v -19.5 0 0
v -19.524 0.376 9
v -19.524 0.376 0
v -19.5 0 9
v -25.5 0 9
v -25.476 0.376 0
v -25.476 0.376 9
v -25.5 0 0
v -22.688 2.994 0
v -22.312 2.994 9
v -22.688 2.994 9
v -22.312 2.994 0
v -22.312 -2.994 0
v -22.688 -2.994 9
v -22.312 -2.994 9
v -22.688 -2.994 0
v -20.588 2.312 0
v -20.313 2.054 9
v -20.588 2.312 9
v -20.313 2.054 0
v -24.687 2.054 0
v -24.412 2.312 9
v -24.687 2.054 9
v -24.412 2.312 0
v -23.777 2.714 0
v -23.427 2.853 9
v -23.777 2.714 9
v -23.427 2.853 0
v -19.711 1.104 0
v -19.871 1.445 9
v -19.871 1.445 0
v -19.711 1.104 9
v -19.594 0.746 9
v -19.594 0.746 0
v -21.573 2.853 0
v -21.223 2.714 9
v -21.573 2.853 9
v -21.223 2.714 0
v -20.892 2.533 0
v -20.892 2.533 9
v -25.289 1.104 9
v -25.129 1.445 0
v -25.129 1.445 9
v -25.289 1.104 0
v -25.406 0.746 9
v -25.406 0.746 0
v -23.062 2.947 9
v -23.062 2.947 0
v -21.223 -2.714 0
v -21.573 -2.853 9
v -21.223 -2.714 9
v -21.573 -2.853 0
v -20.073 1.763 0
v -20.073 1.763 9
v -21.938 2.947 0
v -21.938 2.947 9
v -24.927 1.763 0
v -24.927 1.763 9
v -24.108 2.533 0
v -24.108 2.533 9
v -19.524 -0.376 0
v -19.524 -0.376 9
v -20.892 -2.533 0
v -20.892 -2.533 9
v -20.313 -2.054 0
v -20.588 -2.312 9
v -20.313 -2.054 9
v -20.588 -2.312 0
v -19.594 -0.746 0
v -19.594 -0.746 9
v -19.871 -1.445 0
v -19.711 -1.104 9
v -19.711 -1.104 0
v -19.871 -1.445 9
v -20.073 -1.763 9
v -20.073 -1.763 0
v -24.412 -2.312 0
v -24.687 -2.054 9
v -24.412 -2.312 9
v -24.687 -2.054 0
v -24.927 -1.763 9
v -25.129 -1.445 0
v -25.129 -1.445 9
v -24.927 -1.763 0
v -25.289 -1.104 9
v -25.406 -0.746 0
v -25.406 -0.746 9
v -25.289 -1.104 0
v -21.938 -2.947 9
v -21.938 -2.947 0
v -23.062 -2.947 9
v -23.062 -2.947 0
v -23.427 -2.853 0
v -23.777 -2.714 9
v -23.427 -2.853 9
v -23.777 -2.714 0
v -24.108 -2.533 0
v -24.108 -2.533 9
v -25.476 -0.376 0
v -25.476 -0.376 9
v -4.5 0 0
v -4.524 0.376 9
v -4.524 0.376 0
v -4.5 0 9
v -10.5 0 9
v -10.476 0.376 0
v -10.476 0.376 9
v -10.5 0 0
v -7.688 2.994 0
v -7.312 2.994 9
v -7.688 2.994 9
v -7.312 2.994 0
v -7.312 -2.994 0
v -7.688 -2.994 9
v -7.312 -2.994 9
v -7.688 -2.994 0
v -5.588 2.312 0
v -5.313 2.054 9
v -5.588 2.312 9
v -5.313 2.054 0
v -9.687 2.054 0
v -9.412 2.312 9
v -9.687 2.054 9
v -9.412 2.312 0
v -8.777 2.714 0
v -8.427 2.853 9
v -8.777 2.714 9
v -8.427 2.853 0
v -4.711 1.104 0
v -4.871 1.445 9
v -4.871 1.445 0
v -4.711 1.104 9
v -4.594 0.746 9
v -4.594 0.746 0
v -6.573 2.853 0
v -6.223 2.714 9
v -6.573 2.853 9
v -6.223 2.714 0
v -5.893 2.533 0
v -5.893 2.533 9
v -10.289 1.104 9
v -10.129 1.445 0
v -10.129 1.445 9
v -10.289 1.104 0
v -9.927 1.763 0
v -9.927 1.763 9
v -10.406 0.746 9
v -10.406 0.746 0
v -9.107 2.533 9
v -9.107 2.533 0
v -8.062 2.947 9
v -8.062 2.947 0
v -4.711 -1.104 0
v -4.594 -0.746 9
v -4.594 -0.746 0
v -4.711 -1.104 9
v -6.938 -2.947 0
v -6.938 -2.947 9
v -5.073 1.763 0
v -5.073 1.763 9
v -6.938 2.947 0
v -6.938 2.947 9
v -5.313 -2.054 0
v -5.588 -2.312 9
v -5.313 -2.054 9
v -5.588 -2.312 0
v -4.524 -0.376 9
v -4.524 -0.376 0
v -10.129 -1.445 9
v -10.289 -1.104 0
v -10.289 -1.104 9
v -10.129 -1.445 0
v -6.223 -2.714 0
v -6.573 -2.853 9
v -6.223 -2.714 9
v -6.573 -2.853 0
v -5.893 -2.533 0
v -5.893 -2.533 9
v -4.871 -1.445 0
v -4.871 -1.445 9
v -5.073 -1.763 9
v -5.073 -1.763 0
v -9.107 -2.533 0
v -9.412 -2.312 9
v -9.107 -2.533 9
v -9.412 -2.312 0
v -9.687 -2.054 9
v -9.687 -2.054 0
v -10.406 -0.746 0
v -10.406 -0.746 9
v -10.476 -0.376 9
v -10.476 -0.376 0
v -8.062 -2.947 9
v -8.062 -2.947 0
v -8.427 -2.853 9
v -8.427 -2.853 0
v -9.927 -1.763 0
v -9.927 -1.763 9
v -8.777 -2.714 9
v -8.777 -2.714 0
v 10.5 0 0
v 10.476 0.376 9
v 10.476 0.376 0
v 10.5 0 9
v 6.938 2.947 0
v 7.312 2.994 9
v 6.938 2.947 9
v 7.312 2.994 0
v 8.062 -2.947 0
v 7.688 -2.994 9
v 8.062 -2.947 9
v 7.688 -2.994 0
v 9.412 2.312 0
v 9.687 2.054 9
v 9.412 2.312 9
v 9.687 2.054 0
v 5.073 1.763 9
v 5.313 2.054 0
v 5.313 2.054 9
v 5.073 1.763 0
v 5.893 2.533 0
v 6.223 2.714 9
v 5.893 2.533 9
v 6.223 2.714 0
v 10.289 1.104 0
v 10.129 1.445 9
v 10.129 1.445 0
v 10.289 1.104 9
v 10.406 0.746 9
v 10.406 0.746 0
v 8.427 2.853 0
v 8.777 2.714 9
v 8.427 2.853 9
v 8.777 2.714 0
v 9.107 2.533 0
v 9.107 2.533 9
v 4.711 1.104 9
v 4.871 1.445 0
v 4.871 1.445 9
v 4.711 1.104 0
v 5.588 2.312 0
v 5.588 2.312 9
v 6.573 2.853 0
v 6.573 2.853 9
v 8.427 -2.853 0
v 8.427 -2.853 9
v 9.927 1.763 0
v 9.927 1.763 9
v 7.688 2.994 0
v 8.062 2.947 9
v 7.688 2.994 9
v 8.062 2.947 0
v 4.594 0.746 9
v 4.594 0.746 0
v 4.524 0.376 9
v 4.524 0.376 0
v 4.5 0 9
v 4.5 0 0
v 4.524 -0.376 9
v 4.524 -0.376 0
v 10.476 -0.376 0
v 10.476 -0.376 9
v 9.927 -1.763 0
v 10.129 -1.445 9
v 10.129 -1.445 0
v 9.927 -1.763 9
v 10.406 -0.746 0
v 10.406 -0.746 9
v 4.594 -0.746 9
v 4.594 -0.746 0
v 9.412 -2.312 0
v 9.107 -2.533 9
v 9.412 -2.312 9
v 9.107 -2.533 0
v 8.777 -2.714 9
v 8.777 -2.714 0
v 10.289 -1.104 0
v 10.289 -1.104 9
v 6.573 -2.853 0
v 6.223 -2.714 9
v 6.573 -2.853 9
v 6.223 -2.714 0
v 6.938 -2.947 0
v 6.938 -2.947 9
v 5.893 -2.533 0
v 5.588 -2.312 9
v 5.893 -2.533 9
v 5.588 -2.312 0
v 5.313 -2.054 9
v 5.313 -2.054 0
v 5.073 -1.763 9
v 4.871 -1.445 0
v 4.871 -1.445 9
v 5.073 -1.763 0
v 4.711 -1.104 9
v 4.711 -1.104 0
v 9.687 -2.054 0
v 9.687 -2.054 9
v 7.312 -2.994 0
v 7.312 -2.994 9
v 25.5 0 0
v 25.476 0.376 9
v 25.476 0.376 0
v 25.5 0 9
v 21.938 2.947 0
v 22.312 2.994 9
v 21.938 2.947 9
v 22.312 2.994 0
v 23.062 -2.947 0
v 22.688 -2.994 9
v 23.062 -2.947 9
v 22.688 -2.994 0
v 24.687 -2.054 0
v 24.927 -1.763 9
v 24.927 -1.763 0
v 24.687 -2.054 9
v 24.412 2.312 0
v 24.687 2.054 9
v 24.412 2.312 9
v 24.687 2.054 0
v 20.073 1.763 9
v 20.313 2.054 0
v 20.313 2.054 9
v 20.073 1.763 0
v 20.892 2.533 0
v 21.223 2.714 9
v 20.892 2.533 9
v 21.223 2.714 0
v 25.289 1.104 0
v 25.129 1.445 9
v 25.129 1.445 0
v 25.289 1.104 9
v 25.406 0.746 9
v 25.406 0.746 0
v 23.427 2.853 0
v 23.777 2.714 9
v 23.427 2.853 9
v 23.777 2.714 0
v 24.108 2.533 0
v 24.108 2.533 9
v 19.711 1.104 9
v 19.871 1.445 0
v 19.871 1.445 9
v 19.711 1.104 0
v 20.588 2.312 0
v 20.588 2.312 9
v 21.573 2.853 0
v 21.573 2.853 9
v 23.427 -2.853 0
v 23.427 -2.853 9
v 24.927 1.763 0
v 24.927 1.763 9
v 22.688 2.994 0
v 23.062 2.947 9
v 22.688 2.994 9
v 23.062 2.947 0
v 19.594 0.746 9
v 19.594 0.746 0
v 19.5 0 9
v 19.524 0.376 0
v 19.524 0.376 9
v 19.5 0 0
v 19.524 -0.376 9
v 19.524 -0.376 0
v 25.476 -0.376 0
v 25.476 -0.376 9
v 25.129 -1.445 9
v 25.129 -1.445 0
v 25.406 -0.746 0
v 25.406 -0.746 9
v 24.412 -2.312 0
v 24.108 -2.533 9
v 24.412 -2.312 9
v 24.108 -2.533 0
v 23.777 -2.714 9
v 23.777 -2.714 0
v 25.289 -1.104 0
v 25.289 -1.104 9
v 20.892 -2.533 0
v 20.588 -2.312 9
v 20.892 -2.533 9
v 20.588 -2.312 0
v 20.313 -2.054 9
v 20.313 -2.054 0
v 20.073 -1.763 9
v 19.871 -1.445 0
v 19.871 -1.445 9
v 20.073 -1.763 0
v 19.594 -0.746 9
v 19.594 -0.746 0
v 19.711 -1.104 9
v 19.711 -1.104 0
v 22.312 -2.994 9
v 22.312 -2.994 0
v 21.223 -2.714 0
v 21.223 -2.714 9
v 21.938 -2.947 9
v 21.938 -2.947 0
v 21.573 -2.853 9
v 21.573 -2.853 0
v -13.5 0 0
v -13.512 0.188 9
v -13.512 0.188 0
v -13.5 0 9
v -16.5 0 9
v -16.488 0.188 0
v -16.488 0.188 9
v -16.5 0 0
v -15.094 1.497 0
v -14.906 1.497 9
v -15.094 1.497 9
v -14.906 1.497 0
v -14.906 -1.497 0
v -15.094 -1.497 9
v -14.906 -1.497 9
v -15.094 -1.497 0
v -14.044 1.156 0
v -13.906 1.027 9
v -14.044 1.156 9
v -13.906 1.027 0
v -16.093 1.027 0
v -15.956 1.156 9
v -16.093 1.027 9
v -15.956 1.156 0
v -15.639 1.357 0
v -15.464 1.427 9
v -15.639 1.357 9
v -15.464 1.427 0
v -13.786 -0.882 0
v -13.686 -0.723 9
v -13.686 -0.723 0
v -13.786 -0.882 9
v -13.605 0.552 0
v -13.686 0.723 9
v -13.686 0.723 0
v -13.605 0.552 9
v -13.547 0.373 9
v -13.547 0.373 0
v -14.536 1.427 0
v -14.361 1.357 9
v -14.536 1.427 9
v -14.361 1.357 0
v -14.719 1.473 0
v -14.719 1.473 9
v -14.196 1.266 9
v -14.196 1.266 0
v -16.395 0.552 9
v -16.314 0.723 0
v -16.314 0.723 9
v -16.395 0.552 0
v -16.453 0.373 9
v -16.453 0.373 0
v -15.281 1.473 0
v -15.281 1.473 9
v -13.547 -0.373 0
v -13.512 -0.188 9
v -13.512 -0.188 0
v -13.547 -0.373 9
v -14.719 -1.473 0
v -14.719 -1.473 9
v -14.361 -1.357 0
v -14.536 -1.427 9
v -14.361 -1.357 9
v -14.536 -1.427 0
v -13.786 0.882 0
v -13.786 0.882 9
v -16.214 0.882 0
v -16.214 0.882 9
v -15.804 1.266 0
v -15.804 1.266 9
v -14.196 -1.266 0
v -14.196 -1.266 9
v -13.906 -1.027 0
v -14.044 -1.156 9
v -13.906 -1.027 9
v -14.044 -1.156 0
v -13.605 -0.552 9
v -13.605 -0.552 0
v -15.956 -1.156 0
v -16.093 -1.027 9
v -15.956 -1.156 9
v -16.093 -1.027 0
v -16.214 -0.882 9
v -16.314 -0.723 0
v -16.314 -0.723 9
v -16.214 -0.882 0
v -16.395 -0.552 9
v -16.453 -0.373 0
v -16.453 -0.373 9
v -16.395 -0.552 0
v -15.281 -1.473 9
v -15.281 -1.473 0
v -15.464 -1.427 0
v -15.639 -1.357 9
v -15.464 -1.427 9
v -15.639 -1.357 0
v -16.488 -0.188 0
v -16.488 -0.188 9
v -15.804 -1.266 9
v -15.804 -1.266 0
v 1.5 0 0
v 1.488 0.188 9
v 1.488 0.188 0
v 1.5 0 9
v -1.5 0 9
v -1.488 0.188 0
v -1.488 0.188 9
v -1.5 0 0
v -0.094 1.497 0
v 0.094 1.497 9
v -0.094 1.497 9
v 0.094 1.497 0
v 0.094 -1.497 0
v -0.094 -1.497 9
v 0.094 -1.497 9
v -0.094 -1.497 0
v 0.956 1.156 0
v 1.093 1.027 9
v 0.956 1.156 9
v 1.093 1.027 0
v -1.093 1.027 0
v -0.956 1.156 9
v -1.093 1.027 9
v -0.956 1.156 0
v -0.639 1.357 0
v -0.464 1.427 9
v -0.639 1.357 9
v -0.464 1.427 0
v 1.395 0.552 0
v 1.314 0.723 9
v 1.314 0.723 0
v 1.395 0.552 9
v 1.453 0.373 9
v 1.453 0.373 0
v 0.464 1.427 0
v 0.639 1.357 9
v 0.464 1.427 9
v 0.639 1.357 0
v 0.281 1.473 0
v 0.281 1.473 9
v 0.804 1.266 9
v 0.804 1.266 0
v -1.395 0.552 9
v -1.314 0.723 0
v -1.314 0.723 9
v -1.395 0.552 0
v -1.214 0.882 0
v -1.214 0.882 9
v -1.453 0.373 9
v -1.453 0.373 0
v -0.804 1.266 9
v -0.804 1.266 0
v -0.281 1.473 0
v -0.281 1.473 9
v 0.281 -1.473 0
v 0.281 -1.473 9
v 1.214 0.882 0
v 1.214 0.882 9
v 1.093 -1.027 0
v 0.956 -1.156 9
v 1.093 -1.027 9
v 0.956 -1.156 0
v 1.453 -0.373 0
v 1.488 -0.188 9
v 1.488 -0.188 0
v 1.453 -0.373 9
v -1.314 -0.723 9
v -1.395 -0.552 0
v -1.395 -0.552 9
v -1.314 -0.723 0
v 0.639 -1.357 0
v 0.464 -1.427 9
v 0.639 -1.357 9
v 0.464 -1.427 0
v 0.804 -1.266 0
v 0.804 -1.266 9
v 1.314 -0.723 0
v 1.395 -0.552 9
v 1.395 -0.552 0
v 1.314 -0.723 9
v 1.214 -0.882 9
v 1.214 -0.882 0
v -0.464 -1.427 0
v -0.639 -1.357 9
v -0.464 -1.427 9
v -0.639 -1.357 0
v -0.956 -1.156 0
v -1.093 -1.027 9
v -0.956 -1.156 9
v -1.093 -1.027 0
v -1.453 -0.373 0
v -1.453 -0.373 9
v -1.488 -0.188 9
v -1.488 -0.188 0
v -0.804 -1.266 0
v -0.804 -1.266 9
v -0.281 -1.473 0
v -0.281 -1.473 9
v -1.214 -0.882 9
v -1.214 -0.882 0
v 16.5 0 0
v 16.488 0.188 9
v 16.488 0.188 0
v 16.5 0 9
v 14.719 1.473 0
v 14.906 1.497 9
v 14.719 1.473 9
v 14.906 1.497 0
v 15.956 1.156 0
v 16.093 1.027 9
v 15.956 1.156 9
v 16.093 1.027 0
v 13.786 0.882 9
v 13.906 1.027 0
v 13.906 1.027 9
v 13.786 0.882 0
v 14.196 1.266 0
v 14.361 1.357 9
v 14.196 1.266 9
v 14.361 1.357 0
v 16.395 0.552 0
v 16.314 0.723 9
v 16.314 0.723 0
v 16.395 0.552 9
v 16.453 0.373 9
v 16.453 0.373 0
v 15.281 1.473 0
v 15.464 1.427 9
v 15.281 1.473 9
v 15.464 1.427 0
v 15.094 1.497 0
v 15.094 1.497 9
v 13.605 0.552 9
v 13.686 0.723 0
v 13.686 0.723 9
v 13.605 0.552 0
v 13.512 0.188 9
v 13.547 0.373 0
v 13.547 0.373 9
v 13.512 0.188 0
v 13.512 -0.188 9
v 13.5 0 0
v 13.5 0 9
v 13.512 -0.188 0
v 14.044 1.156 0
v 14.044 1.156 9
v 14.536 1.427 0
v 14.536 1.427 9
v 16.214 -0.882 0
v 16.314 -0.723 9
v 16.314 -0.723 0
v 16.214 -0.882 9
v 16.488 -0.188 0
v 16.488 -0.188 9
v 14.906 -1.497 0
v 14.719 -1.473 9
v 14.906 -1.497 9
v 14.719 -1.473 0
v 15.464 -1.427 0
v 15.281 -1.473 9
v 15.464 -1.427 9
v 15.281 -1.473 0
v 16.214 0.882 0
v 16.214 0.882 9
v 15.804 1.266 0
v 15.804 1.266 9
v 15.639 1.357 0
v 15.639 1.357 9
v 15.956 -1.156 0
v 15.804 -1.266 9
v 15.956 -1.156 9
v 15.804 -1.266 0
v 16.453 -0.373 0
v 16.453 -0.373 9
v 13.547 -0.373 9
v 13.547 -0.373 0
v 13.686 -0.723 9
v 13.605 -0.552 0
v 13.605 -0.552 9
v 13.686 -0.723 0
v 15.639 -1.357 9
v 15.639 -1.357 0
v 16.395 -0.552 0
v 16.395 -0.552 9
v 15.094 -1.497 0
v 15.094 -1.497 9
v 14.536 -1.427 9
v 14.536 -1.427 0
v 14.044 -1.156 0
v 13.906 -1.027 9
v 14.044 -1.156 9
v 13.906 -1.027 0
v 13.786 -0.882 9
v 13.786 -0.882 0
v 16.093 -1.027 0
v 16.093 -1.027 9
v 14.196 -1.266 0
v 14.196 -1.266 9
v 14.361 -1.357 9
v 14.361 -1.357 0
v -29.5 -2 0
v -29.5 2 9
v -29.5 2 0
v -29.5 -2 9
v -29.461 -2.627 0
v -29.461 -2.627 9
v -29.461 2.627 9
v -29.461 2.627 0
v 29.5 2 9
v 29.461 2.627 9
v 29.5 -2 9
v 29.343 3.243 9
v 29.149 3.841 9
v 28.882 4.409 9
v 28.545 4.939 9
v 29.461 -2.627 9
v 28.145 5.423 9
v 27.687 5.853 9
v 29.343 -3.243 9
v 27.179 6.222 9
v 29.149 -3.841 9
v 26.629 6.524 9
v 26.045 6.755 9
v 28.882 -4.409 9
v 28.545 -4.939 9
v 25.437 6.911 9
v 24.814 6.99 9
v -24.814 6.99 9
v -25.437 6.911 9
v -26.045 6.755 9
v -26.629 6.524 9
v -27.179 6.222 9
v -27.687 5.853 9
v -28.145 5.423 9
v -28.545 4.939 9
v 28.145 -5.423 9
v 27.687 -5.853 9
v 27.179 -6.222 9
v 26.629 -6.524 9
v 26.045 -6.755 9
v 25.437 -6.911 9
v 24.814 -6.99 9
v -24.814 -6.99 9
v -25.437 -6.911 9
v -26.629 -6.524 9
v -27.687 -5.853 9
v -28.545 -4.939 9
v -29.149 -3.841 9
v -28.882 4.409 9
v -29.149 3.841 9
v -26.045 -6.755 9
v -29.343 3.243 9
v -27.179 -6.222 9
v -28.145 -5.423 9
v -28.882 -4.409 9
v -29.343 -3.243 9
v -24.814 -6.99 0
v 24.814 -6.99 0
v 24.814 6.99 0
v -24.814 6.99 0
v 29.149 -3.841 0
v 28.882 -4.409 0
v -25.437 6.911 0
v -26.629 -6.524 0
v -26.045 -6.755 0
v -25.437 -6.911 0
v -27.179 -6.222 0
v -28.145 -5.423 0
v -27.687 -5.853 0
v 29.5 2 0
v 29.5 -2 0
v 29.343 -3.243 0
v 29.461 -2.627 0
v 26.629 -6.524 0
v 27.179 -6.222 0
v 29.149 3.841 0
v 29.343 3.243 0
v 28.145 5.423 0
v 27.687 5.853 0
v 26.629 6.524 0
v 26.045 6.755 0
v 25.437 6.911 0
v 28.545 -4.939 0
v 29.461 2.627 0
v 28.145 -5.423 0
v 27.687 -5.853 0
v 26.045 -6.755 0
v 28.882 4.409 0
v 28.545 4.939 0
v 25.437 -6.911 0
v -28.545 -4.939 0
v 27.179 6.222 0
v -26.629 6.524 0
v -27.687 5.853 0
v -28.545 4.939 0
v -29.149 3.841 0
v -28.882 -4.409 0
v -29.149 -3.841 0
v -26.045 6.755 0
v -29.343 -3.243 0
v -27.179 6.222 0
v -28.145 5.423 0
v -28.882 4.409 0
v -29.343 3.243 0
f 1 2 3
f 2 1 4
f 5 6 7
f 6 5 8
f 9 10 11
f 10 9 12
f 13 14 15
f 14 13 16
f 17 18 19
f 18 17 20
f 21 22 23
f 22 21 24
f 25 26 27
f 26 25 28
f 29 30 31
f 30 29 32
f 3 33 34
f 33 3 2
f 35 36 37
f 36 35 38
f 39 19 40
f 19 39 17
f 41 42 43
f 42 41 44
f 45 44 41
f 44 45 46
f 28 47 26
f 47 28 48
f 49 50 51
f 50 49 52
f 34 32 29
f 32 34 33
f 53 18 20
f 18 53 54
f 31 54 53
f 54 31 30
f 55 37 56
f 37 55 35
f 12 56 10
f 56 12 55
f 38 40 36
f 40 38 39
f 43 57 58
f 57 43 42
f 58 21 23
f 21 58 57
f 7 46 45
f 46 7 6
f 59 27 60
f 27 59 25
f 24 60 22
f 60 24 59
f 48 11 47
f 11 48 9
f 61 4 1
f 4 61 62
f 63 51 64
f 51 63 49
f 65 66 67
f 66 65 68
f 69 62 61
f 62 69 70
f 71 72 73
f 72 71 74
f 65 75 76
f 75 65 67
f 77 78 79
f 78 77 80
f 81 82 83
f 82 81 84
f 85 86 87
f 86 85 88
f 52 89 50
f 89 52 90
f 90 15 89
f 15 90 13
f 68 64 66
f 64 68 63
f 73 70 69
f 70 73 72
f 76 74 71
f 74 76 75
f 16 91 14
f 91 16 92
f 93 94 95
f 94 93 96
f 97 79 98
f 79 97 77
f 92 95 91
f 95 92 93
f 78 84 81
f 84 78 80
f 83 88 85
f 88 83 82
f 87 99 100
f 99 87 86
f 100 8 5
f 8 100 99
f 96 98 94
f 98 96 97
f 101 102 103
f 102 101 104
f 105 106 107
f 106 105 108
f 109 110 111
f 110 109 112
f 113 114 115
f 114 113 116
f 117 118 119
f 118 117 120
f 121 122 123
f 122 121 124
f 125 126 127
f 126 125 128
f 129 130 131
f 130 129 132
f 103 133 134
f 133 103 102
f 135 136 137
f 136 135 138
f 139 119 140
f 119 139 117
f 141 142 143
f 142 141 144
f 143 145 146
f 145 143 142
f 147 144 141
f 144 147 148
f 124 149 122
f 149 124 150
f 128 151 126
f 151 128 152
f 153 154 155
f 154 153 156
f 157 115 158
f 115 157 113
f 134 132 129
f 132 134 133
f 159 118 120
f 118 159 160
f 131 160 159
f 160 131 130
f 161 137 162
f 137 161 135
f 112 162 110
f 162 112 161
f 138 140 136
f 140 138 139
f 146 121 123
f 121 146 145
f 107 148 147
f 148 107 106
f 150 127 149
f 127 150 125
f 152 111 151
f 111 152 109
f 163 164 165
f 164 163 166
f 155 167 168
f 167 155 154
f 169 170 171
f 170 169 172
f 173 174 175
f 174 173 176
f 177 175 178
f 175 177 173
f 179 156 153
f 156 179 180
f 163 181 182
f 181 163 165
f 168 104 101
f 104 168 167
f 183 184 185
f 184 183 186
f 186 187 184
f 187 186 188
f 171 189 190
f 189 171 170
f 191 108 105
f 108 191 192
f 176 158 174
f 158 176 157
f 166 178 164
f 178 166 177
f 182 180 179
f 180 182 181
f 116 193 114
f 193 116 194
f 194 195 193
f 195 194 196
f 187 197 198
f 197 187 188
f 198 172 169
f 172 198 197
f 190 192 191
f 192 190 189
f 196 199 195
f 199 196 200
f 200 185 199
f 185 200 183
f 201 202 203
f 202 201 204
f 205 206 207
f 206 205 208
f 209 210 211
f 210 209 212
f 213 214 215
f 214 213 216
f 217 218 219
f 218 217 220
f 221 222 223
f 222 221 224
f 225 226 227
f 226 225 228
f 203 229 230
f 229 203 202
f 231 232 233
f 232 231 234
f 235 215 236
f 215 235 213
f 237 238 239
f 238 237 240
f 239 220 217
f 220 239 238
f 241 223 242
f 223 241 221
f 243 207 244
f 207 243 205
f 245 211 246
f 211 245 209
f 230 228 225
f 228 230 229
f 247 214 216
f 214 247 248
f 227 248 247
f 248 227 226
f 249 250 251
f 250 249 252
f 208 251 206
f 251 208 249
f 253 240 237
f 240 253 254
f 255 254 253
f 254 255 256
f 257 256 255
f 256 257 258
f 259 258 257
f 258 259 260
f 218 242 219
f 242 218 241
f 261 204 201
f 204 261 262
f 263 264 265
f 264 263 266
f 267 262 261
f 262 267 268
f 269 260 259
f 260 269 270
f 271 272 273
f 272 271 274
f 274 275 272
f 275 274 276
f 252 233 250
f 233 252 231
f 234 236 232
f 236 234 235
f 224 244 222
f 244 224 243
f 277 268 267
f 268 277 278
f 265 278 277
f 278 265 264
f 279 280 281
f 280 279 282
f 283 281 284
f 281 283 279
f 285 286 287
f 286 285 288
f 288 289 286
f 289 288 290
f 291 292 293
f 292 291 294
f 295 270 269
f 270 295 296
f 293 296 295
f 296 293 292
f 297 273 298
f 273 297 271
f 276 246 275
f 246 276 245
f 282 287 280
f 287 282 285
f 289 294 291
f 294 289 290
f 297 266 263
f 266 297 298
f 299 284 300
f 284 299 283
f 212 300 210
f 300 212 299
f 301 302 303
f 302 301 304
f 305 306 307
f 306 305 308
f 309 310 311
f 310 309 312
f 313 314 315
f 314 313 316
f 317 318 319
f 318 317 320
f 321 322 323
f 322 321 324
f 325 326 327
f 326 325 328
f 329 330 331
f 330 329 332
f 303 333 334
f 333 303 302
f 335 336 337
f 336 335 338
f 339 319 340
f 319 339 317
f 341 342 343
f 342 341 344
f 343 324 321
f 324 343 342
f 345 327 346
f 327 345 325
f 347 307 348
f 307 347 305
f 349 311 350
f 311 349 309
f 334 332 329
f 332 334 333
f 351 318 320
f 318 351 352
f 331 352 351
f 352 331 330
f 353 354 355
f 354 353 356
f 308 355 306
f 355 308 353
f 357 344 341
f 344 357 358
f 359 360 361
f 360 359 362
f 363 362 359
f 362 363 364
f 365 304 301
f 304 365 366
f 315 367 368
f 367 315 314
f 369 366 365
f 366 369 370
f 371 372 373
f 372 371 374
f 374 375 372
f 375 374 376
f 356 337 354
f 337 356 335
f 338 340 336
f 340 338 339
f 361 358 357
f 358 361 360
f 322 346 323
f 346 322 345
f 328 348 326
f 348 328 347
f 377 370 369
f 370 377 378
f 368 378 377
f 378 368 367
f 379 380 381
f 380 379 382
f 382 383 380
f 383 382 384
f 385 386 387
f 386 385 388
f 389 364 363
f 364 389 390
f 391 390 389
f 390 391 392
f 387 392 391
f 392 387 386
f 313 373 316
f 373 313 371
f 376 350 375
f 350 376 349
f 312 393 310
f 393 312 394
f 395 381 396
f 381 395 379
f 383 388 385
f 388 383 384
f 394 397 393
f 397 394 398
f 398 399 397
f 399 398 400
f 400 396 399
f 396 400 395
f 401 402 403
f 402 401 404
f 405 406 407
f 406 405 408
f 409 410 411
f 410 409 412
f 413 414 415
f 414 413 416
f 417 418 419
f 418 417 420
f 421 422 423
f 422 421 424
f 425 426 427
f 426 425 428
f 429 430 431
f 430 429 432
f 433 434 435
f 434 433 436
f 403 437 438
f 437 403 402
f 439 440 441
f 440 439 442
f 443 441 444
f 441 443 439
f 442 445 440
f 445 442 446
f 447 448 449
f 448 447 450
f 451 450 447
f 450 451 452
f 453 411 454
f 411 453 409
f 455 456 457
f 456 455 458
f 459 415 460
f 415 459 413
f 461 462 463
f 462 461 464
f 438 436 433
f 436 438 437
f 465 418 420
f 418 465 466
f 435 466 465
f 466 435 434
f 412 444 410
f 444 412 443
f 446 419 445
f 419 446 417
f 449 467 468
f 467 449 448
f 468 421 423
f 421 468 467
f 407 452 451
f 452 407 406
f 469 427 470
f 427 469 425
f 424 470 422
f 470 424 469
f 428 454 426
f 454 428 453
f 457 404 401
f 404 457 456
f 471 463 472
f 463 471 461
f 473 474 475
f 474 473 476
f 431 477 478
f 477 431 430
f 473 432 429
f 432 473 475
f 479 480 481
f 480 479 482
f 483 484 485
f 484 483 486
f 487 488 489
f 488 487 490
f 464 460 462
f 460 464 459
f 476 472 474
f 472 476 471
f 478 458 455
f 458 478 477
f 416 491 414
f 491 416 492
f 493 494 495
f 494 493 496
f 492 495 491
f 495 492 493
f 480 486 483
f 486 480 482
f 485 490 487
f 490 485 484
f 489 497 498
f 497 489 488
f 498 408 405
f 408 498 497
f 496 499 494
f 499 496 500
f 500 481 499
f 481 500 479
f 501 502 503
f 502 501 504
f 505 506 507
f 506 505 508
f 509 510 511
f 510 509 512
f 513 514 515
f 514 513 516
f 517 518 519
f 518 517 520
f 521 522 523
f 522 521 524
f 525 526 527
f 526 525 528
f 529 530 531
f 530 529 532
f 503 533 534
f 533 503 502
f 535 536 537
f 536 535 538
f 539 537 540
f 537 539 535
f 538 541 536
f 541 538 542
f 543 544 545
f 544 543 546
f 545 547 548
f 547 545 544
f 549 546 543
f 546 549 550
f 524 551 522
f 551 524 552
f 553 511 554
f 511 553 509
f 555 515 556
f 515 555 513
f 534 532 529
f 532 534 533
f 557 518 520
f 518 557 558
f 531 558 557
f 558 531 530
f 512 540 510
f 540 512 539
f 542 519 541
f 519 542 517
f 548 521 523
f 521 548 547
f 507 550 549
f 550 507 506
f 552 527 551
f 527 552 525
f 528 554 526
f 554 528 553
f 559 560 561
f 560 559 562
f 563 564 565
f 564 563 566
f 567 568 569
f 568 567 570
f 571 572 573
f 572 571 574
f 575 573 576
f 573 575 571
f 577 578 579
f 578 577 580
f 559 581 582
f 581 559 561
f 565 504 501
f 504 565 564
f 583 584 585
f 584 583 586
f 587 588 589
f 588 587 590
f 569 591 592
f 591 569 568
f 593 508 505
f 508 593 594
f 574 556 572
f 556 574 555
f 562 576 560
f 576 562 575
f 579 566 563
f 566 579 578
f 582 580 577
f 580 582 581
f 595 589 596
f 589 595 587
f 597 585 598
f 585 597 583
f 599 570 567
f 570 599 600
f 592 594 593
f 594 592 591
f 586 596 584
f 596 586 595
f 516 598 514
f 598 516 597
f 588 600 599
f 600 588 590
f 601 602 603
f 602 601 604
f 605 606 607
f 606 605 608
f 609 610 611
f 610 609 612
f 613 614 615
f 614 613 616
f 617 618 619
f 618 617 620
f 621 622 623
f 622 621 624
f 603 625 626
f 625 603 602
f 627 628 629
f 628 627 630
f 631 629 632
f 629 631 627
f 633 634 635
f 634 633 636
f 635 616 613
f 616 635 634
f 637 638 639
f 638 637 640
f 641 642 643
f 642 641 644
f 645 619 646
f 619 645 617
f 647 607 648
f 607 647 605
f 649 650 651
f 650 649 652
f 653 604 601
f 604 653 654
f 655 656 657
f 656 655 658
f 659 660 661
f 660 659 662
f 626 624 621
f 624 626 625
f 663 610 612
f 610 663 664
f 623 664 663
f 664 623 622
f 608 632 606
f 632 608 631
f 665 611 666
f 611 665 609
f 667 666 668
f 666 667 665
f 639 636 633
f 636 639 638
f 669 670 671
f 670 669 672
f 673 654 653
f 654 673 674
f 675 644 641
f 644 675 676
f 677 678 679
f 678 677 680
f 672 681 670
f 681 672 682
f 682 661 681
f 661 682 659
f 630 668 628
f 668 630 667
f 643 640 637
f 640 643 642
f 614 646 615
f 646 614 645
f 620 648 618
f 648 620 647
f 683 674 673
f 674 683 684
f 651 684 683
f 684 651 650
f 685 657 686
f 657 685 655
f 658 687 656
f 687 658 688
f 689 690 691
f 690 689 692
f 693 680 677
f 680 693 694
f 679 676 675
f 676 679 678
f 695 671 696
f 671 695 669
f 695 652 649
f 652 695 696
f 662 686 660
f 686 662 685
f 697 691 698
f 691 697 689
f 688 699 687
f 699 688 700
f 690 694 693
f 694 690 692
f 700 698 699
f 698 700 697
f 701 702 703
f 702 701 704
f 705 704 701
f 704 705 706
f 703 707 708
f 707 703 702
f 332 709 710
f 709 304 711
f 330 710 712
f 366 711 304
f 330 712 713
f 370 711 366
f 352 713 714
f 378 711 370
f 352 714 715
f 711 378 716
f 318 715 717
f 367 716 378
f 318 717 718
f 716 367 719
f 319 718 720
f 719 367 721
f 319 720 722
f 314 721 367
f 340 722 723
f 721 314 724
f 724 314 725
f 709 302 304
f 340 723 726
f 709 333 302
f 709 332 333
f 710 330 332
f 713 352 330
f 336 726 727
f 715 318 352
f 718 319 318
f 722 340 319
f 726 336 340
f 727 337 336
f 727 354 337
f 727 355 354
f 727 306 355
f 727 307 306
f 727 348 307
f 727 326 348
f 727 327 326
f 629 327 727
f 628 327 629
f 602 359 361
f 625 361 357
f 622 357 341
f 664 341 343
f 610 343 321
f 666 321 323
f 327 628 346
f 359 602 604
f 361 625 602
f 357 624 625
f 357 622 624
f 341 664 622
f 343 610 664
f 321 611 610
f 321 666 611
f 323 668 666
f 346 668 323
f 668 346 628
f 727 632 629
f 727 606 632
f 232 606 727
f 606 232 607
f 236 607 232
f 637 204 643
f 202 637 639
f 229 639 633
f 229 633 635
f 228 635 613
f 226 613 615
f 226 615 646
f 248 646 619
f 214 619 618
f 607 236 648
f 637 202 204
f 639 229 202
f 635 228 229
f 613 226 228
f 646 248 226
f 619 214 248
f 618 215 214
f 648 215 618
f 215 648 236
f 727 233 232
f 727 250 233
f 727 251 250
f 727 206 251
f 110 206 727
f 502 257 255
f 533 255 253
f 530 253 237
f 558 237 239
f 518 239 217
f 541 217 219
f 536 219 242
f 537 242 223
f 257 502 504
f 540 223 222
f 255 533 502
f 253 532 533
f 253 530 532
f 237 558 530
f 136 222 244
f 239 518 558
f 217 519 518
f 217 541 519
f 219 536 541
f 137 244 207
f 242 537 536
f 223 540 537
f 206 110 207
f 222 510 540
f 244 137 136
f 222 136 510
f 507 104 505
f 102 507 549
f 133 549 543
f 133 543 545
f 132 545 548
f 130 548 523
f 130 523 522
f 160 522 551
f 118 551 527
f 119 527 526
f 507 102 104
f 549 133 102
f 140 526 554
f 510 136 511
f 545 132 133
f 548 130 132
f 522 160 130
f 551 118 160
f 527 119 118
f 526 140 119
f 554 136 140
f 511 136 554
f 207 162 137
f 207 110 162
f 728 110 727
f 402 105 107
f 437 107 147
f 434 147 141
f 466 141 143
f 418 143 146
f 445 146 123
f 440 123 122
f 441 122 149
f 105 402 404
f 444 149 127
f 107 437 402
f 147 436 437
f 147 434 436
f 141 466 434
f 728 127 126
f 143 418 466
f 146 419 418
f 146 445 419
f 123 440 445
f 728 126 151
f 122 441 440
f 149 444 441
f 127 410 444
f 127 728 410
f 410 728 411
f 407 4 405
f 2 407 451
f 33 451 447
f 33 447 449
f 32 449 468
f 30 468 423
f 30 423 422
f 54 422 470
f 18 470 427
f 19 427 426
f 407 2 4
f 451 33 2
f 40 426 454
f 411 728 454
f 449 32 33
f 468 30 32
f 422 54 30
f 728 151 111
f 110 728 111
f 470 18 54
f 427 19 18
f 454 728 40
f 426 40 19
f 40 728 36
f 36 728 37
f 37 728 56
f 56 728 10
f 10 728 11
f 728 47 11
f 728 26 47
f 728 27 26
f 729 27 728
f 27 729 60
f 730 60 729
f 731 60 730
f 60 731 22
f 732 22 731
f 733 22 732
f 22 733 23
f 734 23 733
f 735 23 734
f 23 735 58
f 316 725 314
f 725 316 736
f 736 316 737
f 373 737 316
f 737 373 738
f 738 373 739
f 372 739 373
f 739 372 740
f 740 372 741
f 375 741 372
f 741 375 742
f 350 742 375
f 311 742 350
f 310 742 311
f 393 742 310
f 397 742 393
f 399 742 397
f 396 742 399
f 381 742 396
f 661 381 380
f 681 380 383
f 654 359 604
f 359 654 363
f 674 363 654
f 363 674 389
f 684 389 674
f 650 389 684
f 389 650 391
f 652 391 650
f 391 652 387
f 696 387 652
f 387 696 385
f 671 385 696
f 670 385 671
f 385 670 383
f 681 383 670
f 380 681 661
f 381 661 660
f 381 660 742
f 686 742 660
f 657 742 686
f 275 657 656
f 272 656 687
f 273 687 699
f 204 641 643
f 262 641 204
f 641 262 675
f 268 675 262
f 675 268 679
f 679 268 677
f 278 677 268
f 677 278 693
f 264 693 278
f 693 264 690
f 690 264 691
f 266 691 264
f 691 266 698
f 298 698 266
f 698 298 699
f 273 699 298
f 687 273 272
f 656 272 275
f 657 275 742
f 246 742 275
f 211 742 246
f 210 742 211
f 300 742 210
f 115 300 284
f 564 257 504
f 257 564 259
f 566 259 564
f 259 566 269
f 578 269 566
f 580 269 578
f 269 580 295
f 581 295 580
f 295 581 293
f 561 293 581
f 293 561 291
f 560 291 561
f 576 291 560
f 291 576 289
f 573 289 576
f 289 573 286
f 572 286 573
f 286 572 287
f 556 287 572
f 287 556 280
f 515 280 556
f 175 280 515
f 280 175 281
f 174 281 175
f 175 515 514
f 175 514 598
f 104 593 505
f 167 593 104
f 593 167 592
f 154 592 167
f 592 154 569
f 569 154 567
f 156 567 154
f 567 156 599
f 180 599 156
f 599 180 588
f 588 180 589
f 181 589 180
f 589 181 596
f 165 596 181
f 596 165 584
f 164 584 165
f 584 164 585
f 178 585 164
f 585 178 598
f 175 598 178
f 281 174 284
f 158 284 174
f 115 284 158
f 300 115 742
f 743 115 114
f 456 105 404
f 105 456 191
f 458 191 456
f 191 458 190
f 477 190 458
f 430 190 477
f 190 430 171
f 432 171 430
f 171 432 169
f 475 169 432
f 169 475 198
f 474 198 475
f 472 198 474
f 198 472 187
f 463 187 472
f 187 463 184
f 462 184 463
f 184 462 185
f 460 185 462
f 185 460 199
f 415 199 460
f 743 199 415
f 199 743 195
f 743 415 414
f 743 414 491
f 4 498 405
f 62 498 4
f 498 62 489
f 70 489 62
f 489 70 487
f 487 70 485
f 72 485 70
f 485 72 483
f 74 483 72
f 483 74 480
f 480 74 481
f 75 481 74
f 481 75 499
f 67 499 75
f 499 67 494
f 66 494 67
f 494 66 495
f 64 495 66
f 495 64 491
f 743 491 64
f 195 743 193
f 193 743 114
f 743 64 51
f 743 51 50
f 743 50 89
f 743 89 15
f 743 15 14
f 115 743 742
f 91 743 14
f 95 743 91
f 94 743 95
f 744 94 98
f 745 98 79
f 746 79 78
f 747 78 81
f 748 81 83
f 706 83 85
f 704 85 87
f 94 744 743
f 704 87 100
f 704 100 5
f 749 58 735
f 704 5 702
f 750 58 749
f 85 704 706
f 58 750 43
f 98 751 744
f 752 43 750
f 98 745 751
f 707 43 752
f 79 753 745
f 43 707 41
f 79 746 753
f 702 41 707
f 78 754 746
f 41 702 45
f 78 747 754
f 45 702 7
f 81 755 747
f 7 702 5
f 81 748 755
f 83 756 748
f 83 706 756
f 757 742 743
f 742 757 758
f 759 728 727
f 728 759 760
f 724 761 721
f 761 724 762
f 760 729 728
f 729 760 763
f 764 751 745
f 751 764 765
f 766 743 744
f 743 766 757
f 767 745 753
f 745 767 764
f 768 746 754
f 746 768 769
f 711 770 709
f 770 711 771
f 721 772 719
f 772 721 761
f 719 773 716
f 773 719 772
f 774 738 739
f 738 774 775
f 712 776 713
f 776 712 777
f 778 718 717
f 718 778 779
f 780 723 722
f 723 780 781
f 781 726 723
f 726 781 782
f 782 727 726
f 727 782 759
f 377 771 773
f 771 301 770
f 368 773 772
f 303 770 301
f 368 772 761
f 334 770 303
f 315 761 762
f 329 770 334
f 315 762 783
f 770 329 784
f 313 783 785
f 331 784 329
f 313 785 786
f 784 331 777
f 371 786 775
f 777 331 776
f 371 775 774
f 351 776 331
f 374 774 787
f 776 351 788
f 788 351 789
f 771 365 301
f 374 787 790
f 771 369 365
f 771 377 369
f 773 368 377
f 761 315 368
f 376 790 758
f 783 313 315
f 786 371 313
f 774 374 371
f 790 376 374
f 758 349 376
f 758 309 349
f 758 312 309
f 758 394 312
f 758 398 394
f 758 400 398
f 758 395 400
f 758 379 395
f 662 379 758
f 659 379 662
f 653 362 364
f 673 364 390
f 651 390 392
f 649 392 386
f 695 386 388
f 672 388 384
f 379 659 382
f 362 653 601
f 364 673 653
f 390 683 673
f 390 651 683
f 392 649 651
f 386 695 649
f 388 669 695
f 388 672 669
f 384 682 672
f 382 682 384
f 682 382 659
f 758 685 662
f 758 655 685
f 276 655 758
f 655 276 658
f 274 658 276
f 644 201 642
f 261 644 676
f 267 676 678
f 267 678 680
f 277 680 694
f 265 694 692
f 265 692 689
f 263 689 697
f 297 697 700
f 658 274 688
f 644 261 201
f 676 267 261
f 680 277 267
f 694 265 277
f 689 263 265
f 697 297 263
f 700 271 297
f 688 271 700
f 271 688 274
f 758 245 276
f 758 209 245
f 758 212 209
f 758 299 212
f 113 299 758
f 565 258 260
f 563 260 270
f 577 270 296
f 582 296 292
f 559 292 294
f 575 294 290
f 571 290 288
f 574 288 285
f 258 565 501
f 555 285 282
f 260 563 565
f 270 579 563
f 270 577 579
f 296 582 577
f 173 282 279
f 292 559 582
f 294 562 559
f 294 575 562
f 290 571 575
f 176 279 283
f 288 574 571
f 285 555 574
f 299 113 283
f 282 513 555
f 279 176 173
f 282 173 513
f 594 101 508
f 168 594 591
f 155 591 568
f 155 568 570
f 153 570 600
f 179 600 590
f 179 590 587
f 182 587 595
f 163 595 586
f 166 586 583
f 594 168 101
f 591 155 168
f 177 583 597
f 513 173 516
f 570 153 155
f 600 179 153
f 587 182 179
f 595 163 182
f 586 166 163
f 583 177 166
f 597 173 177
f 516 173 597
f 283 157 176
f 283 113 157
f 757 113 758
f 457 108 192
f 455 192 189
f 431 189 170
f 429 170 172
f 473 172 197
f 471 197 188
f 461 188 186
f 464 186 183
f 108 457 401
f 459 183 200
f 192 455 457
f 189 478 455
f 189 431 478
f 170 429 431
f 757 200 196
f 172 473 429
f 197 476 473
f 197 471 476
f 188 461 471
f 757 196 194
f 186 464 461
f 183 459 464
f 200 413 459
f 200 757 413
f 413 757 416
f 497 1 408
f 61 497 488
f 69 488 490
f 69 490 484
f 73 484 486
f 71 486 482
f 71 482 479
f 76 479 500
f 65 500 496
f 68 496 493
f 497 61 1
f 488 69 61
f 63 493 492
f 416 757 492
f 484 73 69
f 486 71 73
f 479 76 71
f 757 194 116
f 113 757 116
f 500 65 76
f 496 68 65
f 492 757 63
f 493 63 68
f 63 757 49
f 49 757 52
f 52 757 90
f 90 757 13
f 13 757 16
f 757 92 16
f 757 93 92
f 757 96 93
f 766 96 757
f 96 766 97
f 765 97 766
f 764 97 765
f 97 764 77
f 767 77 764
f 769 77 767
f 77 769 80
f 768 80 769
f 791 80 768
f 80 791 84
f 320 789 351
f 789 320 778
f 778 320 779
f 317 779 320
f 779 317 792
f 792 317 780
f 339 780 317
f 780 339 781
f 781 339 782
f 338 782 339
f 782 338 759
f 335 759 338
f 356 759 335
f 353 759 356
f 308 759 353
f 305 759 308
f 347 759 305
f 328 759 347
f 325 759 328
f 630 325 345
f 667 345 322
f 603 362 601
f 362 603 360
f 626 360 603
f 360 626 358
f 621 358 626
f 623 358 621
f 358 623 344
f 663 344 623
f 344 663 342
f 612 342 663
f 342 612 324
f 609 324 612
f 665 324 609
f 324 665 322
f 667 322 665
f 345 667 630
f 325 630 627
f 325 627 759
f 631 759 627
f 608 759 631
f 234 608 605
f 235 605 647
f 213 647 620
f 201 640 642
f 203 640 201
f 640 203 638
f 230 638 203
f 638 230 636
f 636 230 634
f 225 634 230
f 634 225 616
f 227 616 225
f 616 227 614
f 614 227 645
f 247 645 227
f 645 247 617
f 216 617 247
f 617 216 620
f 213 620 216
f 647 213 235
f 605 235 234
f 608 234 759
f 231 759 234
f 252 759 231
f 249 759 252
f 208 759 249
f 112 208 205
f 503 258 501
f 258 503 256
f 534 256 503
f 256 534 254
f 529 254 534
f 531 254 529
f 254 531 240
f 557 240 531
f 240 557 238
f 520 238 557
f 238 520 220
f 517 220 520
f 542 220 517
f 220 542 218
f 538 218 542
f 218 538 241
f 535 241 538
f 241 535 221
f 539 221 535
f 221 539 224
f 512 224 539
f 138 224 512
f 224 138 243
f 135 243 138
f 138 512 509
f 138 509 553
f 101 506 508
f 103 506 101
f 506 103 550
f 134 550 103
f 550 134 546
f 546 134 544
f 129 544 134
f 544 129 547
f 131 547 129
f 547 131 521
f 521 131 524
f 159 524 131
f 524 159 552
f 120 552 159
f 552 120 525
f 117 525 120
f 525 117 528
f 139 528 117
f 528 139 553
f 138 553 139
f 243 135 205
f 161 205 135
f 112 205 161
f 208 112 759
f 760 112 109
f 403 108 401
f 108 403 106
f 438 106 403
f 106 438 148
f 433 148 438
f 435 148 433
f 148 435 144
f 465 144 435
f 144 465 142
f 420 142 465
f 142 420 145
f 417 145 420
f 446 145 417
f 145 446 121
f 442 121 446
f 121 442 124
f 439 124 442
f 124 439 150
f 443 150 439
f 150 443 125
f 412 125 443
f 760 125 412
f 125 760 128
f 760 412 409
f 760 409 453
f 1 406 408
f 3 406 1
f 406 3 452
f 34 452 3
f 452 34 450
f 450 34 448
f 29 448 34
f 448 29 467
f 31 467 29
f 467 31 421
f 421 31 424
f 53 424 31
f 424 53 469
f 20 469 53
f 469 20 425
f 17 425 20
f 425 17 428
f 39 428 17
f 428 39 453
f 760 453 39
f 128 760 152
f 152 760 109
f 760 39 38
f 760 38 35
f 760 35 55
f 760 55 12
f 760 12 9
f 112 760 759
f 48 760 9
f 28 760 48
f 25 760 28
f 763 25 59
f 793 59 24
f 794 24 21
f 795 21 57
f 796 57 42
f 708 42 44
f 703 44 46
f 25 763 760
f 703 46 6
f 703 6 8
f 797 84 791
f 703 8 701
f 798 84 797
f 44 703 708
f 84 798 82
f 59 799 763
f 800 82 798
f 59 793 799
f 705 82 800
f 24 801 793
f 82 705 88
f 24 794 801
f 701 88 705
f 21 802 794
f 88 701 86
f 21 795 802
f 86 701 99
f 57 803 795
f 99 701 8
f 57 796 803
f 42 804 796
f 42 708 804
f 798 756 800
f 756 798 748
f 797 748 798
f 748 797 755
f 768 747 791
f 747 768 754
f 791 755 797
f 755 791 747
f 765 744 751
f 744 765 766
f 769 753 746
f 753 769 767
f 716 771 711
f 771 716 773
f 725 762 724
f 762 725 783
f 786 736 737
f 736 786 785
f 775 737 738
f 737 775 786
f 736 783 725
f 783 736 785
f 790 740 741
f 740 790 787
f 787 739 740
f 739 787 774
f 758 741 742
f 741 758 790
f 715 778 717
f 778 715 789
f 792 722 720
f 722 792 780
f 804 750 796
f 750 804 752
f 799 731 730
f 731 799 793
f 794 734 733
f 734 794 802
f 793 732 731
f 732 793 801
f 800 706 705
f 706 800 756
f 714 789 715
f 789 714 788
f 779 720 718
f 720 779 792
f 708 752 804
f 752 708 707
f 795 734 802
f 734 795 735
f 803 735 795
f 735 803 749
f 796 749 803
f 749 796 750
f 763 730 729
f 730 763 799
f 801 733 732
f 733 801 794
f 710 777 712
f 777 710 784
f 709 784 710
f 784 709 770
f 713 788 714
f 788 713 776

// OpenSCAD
$fn = 50;


difference() {
	union() {
		translate(v = [0, 0, 0]) {
			rotate(a = [0, 0, 0]) {
				hull() {
					translate(v = [-24.5000000000, 2.0000000000, 0]) {
						rotate(a = [0, 0, 0]) {
							translate(v = [0, 0, 0]) {
								rotate(a = [0, 0, 0]) {
									cylinder(h = 9, r = 5);
								}
							}
						}
					}
					translate(v = [24.5000000000, 2.0000000000, 0]) {
						rotate(a = [0, 0, 0]) {
							translate(v = [0, 0, 0]) {
								rotate(a = [0, 0, 0]) {
									cylinder(h = 9, r = 5);
								}
							}
						}
					}
					translate(v = [-24.5000000000, -2.0000000000, 0]) {
						rotate(a = [0, 0, 0]) {
							translate(v = [0, 0, 0]) {
								rotate(a = [0, 0, 0]) {
									cylinder(h = 9, r = 5);
								}
							}
						}
					}
					translate(v = [24.5000000000, -2.0000000000, 0]) {
						rotate(a = [0, 0, 0]) {
							translate(v = [0, 0, 0]) {
								rotate(a = [0, 0, 0]) {
									cylinder(h = 9, r = 5);
								}
							}
						}
					}
				}
			}
		}
	}
	union() {
		translate(v = [-22.5000000000, 0.0000000000, 0]) {
			rotate(a = [0, 0, 0]) {
				translate(v = [0, 0, -50]) {
					rotate(a = [0, 0, 0]) {
						cylinder(h = 100, r = 3.0000000000);
					}
				}
			}
		}
		translate(v = [-7.5000000000, 0.0000000000, 0]) {
			rotate(a = [0, 0, 0]) {
				translate(v = [0, 0, -50]) {
					rotate(a = [0, 0, 0]) {
						cylinder(h = 100, r = 3.0000000000);
					}
				}
			}
		}
		translate(v = [7.5000000000, 0.0000000000, 0]) {
			rotate(a = [0, 0, 0]) {
				translate(v = [0, 0, -50]) {
					rotate(a = [0, 0, 0]) {
						cylinder(h = 100, r = 3.0000000000);
					}
				}
			}
		}
		translate(v = [22.5000000000, 0.0000000000, 0]) {
			rotate(a = [0, 0, 0]) {
				translate(v = [0, 0, -50]) {
					rotate(a = [0, 0, 0]) {
						cylinder(h = 100, r = 3.0000000000);
					}
				}
			}
		}
		translate(v = [-22.5000000000, 0.0000000000, 0]) {
			rotate(a = [0, 0, 0]) {
				translate(v = [0, 0, -50]) {
					rotate(a = [0, 0, 0]) {
						cylinder(h = 100, r = 1.5000000000);
					}
				}
			}
		}
		translate(v = [-15.0000000000, 0.0000000000, 0]) {
			rotate(a = [0, 0, 0]) {
				translate(v = [0, 0, -50]) {
					rotate(a = [0, 0, 0]) {
						cylinder(h = 100, r = 1.5000000000);
					}
				}
			}
		}
		translate(v = [-7.5000000000, 0.0000000000, 0]) {
			rotate(a = [0, 0, 0]) {
				translate(v = [0, 0, -50]) {
					rotate(a = [0, 0, 0]) {
						cylinder(h = 100, r = 1.5000000000);
					}
				}
			}
		}
		translate(v = [0.0000000000, 0.0000000000, 0]) {
			rotate(a = [0, 0, 0]) {
				translate(v = [0, 0, -50]) {
					rotate(a = [0, 0, 0]) {
						cylinder(h = 100, r = 1.5000000000);
					}
				}
			}
		}
		translate(v = [7.5000000000, 0.0000000000, 0]) {
			rotate(a = [0, 0, 0]) {
				translate(v = [0, 0, -50]) {
					rotate(a = [0, 0, 0]) {
						cylinder(h = 100, r = 1.5000000000);
					}
				}
			}
		}
		translate(v = [15.0000000000, 0.0000000000, 0]) {
			rotate(a = [0, 0, 0]) {
				translate(v = [0, 0, -50]) {
					rotate(a = [0, 0, 0]) {
						cylinder(h = 100, r = 1.5000000000);
					}
				}
			}
		}
		translate(v = [22.5000000000, 0.0000000000, 0]) {
			rotate(a = [0, 0, 0]) {
				translate(v = [0, 0, -50]) {
					rotate(a = [0, 0, 0]) {
						cylinder(h = 100, r = 1.5000000000);
					}
				}
			}
		}
	}
}
